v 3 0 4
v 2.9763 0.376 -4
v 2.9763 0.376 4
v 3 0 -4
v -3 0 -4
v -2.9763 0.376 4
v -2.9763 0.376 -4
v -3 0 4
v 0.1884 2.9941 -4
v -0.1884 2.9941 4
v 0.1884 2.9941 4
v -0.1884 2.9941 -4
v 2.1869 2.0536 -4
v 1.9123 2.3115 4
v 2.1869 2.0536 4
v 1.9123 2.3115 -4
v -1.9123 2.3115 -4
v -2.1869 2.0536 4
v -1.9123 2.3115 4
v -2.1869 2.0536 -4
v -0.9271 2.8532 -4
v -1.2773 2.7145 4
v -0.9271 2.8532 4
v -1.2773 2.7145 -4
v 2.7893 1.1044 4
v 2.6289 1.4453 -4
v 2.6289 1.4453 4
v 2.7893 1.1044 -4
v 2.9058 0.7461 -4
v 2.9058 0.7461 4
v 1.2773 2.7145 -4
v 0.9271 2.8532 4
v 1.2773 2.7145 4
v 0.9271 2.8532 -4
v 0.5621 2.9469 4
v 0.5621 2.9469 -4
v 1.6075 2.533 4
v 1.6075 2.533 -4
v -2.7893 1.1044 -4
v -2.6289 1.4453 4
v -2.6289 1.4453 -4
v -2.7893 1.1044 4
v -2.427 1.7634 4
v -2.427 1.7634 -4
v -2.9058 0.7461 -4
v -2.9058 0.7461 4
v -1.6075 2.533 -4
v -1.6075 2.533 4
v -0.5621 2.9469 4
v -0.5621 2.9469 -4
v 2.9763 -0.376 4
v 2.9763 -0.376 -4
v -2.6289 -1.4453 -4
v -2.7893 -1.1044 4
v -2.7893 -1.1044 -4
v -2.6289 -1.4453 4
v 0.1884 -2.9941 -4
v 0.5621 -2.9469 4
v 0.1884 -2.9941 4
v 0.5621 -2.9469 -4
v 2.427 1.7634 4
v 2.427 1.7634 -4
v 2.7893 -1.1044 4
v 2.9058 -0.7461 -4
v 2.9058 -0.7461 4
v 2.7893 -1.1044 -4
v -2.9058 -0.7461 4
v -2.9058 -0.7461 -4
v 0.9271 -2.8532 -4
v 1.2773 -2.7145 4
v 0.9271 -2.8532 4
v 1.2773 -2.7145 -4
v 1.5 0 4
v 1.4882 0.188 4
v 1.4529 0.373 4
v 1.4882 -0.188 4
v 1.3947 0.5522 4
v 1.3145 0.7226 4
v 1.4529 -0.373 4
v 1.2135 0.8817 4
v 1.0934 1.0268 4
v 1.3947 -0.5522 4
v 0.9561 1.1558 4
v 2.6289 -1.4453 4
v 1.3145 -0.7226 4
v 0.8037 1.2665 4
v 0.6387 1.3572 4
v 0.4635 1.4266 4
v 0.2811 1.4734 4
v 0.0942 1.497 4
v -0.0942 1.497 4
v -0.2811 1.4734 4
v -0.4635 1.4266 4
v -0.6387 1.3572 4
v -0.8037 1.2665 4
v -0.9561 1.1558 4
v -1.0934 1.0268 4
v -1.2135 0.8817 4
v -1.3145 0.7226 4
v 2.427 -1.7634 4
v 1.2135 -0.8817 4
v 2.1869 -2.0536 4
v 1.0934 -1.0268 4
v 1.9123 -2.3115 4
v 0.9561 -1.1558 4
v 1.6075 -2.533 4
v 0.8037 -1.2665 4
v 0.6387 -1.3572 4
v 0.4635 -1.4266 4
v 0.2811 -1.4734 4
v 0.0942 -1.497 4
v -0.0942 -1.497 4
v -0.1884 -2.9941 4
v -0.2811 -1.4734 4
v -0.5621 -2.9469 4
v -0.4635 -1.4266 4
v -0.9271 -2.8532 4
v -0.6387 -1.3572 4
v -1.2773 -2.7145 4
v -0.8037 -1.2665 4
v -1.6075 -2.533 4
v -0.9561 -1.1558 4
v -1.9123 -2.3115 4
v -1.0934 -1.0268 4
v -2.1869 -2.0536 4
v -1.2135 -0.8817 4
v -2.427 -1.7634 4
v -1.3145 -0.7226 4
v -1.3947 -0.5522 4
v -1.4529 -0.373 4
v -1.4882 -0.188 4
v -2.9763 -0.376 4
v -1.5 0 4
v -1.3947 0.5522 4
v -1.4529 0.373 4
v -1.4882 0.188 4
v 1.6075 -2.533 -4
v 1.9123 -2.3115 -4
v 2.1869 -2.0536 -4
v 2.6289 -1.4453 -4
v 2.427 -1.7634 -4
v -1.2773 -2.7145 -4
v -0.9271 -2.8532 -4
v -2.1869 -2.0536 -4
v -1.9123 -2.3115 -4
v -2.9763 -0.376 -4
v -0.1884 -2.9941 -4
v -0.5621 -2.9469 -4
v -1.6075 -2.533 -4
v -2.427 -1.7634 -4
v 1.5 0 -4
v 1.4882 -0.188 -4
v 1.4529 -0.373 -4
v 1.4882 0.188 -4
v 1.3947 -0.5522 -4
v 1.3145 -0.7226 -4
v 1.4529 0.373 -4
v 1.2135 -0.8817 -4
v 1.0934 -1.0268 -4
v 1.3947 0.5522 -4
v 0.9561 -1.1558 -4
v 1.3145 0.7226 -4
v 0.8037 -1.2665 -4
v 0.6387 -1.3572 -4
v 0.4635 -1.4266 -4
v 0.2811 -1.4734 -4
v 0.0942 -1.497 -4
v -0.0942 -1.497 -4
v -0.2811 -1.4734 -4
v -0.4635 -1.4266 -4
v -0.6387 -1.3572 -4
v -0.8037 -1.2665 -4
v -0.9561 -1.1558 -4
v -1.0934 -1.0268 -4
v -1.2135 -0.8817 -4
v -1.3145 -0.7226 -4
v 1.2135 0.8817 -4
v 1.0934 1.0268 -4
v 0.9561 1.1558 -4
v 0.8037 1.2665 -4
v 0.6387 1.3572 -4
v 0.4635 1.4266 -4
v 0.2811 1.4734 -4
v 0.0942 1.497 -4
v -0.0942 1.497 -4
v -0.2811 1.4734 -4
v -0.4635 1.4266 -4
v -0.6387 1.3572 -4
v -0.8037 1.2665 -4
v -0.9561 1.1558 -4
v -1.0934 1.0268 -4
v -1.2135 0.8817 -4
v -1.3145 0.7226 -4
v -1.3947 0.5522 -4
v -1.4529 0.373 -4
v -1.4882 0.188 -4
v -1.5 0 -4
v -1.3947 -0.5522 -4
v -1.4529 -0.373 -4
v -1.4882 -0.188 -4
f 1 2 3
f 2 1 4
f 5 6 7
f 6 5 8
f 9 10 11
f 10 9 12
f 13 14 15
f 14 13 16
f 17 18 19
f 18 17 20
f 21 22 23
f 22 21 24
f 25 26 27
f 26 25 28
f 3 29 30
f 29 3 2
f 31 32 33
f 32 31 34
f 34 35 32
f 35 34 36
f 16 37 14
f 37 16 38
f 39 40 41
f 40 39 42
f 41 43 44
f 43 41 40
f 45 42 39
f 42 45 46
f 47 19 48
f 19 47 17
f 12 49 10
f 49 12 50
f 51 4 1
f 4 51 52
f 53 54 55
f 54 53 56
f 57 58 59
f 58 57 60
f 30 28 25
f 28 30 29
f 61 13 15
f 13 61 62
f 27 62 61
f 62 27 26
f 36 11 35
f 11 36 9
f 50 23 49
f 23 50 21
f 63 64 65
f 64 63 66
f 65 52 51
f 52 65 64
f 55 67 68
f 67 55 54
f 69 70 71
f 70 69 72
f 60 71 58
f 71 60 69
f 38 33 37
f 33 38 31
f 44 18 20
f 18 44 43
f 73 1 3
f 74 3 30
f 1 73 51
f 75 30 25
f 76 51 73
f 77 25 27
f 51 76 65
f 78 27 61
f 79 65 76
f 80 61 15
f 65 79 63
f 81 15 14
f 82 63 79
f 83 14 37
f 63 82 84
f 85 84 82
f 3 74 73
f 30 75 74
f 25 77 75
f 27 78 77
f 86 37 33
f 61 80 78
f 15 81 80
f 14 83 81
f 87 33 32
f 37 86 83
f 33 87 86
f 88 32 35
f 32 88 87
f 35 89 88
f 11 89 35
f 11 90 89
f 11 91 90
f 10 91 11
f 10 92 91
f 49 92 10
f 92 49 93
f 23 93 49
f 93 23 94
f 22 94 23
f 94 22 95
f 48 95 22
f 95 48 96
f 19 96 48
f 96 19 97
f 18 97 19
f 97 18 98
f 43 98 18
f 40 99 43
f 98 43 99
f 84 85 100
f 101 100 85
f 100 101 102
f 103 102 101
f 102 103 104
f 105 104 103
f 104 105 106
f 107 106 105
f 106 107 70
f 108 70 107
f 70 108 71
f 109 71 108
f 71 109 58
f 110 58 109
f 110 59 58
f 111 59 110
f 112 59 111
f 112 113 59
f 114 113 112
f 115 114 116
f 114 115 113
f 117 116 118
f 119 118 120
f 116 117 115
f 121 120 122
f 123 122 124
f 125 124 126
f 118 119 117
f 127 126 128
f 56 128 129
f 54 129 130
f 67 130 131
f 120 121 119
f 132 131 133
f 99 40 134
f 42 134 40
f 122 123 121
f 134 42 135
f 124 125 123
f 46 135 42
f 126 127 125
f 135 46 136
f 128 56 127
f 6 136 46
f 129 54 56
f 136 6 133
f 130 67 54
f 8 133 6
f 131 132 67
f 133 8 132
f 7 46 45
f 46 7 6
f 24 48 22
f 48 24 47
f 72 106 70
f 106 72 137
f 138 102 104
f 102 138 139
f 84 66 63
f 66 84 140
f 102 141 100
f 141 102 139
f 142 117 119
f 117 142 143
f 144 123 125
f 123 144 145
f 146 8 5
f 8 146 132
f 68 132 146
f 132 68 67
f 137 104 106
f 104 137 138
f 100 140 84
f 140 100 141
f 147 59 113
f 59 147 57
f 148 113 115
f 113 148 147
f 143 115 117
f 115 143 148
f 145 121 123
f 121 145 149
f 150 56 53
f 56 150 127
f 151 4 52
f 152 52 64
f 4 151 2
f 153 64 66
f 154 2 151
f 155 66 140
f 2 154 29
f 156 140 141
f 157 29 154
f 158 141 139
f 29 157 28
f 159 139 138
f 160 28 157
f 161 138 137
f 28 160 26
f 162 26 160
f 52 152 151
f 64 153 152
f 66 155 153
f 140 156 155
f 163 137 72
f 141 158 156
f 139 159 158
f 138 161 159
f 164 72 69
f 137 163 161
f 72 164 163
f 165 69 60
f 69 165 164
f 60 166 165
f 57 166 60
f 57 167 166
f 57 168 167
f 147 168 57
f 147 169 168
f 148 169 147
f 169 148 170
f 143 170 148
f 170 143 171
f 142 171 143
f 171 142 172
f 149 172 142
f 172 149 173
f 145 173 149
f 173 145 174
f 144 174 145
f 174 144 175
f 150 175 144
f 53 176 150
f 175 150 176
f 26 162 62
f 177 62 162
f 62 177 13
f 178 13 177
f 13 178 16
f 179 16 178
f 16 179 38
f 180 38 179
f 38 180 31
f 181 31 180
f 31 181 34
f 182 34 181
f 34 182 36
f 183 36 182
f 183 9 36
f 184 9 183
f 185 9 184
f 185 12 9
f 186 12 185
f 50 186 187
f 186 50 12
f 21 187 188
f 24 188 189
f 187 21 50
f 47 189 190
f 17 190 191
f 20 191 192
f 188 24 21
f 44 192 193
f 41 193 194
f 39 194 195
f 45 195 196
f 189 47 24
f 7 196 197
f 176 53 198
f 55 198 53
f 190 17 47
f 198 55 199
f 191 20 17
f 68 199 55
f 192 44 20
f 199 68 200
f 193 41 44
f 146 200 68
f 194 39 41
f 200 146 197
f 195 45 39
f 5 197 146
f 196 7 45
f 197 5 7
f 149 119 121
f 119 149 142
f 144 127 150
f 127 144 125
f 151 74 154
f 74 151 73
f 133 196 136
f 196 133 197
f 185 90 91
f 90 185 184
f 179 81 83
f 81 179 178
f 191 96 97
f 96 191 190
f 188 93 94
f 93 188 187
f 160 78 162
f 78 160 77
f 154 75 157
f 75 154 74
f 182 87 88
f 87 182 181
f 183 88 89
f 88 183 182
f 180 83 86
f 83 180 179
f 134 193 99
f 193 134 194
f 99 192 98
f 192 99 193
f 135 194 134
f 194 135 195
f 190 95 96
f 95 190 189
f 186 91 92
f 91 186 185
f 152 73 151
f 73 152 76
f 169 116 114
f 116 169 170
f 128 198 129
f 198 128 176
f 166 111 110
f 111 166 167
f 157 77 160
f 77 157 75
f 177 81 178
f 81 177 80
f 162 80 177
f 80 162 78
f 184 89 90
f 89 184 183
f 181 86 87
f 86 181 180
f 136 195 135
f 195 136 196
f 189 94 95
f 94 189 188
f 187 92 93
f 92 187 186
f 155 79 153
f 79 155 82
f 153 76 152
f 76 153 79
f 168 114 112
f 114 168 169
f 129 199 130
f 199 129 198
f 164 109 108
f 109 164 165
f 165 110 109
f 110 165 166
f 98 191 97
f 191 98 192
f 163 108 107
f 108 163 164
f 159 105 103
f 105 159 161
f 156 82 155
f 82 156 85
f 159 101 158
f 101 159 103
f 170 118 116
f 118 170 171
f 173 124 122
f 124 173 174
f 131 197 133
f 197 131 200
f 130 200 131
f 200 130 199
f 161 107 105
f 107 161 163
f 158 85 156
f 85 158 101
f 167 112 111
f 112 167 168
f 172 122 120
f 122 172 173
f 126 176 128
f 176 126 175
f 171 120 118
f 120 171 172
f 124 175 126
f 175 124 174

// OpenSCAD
$fn = 50;


difference() {
	union() {
		translate(v = [0, 0, -4.0000000000]) {
			cylinder(h = 8, r = 3.0000000000);
		}
	}
	union() {
		translate(v = [0, 0, -100.0000000000]) {
			cylinder(h = 200, r = 1.5000000000);
		}
	}
}
